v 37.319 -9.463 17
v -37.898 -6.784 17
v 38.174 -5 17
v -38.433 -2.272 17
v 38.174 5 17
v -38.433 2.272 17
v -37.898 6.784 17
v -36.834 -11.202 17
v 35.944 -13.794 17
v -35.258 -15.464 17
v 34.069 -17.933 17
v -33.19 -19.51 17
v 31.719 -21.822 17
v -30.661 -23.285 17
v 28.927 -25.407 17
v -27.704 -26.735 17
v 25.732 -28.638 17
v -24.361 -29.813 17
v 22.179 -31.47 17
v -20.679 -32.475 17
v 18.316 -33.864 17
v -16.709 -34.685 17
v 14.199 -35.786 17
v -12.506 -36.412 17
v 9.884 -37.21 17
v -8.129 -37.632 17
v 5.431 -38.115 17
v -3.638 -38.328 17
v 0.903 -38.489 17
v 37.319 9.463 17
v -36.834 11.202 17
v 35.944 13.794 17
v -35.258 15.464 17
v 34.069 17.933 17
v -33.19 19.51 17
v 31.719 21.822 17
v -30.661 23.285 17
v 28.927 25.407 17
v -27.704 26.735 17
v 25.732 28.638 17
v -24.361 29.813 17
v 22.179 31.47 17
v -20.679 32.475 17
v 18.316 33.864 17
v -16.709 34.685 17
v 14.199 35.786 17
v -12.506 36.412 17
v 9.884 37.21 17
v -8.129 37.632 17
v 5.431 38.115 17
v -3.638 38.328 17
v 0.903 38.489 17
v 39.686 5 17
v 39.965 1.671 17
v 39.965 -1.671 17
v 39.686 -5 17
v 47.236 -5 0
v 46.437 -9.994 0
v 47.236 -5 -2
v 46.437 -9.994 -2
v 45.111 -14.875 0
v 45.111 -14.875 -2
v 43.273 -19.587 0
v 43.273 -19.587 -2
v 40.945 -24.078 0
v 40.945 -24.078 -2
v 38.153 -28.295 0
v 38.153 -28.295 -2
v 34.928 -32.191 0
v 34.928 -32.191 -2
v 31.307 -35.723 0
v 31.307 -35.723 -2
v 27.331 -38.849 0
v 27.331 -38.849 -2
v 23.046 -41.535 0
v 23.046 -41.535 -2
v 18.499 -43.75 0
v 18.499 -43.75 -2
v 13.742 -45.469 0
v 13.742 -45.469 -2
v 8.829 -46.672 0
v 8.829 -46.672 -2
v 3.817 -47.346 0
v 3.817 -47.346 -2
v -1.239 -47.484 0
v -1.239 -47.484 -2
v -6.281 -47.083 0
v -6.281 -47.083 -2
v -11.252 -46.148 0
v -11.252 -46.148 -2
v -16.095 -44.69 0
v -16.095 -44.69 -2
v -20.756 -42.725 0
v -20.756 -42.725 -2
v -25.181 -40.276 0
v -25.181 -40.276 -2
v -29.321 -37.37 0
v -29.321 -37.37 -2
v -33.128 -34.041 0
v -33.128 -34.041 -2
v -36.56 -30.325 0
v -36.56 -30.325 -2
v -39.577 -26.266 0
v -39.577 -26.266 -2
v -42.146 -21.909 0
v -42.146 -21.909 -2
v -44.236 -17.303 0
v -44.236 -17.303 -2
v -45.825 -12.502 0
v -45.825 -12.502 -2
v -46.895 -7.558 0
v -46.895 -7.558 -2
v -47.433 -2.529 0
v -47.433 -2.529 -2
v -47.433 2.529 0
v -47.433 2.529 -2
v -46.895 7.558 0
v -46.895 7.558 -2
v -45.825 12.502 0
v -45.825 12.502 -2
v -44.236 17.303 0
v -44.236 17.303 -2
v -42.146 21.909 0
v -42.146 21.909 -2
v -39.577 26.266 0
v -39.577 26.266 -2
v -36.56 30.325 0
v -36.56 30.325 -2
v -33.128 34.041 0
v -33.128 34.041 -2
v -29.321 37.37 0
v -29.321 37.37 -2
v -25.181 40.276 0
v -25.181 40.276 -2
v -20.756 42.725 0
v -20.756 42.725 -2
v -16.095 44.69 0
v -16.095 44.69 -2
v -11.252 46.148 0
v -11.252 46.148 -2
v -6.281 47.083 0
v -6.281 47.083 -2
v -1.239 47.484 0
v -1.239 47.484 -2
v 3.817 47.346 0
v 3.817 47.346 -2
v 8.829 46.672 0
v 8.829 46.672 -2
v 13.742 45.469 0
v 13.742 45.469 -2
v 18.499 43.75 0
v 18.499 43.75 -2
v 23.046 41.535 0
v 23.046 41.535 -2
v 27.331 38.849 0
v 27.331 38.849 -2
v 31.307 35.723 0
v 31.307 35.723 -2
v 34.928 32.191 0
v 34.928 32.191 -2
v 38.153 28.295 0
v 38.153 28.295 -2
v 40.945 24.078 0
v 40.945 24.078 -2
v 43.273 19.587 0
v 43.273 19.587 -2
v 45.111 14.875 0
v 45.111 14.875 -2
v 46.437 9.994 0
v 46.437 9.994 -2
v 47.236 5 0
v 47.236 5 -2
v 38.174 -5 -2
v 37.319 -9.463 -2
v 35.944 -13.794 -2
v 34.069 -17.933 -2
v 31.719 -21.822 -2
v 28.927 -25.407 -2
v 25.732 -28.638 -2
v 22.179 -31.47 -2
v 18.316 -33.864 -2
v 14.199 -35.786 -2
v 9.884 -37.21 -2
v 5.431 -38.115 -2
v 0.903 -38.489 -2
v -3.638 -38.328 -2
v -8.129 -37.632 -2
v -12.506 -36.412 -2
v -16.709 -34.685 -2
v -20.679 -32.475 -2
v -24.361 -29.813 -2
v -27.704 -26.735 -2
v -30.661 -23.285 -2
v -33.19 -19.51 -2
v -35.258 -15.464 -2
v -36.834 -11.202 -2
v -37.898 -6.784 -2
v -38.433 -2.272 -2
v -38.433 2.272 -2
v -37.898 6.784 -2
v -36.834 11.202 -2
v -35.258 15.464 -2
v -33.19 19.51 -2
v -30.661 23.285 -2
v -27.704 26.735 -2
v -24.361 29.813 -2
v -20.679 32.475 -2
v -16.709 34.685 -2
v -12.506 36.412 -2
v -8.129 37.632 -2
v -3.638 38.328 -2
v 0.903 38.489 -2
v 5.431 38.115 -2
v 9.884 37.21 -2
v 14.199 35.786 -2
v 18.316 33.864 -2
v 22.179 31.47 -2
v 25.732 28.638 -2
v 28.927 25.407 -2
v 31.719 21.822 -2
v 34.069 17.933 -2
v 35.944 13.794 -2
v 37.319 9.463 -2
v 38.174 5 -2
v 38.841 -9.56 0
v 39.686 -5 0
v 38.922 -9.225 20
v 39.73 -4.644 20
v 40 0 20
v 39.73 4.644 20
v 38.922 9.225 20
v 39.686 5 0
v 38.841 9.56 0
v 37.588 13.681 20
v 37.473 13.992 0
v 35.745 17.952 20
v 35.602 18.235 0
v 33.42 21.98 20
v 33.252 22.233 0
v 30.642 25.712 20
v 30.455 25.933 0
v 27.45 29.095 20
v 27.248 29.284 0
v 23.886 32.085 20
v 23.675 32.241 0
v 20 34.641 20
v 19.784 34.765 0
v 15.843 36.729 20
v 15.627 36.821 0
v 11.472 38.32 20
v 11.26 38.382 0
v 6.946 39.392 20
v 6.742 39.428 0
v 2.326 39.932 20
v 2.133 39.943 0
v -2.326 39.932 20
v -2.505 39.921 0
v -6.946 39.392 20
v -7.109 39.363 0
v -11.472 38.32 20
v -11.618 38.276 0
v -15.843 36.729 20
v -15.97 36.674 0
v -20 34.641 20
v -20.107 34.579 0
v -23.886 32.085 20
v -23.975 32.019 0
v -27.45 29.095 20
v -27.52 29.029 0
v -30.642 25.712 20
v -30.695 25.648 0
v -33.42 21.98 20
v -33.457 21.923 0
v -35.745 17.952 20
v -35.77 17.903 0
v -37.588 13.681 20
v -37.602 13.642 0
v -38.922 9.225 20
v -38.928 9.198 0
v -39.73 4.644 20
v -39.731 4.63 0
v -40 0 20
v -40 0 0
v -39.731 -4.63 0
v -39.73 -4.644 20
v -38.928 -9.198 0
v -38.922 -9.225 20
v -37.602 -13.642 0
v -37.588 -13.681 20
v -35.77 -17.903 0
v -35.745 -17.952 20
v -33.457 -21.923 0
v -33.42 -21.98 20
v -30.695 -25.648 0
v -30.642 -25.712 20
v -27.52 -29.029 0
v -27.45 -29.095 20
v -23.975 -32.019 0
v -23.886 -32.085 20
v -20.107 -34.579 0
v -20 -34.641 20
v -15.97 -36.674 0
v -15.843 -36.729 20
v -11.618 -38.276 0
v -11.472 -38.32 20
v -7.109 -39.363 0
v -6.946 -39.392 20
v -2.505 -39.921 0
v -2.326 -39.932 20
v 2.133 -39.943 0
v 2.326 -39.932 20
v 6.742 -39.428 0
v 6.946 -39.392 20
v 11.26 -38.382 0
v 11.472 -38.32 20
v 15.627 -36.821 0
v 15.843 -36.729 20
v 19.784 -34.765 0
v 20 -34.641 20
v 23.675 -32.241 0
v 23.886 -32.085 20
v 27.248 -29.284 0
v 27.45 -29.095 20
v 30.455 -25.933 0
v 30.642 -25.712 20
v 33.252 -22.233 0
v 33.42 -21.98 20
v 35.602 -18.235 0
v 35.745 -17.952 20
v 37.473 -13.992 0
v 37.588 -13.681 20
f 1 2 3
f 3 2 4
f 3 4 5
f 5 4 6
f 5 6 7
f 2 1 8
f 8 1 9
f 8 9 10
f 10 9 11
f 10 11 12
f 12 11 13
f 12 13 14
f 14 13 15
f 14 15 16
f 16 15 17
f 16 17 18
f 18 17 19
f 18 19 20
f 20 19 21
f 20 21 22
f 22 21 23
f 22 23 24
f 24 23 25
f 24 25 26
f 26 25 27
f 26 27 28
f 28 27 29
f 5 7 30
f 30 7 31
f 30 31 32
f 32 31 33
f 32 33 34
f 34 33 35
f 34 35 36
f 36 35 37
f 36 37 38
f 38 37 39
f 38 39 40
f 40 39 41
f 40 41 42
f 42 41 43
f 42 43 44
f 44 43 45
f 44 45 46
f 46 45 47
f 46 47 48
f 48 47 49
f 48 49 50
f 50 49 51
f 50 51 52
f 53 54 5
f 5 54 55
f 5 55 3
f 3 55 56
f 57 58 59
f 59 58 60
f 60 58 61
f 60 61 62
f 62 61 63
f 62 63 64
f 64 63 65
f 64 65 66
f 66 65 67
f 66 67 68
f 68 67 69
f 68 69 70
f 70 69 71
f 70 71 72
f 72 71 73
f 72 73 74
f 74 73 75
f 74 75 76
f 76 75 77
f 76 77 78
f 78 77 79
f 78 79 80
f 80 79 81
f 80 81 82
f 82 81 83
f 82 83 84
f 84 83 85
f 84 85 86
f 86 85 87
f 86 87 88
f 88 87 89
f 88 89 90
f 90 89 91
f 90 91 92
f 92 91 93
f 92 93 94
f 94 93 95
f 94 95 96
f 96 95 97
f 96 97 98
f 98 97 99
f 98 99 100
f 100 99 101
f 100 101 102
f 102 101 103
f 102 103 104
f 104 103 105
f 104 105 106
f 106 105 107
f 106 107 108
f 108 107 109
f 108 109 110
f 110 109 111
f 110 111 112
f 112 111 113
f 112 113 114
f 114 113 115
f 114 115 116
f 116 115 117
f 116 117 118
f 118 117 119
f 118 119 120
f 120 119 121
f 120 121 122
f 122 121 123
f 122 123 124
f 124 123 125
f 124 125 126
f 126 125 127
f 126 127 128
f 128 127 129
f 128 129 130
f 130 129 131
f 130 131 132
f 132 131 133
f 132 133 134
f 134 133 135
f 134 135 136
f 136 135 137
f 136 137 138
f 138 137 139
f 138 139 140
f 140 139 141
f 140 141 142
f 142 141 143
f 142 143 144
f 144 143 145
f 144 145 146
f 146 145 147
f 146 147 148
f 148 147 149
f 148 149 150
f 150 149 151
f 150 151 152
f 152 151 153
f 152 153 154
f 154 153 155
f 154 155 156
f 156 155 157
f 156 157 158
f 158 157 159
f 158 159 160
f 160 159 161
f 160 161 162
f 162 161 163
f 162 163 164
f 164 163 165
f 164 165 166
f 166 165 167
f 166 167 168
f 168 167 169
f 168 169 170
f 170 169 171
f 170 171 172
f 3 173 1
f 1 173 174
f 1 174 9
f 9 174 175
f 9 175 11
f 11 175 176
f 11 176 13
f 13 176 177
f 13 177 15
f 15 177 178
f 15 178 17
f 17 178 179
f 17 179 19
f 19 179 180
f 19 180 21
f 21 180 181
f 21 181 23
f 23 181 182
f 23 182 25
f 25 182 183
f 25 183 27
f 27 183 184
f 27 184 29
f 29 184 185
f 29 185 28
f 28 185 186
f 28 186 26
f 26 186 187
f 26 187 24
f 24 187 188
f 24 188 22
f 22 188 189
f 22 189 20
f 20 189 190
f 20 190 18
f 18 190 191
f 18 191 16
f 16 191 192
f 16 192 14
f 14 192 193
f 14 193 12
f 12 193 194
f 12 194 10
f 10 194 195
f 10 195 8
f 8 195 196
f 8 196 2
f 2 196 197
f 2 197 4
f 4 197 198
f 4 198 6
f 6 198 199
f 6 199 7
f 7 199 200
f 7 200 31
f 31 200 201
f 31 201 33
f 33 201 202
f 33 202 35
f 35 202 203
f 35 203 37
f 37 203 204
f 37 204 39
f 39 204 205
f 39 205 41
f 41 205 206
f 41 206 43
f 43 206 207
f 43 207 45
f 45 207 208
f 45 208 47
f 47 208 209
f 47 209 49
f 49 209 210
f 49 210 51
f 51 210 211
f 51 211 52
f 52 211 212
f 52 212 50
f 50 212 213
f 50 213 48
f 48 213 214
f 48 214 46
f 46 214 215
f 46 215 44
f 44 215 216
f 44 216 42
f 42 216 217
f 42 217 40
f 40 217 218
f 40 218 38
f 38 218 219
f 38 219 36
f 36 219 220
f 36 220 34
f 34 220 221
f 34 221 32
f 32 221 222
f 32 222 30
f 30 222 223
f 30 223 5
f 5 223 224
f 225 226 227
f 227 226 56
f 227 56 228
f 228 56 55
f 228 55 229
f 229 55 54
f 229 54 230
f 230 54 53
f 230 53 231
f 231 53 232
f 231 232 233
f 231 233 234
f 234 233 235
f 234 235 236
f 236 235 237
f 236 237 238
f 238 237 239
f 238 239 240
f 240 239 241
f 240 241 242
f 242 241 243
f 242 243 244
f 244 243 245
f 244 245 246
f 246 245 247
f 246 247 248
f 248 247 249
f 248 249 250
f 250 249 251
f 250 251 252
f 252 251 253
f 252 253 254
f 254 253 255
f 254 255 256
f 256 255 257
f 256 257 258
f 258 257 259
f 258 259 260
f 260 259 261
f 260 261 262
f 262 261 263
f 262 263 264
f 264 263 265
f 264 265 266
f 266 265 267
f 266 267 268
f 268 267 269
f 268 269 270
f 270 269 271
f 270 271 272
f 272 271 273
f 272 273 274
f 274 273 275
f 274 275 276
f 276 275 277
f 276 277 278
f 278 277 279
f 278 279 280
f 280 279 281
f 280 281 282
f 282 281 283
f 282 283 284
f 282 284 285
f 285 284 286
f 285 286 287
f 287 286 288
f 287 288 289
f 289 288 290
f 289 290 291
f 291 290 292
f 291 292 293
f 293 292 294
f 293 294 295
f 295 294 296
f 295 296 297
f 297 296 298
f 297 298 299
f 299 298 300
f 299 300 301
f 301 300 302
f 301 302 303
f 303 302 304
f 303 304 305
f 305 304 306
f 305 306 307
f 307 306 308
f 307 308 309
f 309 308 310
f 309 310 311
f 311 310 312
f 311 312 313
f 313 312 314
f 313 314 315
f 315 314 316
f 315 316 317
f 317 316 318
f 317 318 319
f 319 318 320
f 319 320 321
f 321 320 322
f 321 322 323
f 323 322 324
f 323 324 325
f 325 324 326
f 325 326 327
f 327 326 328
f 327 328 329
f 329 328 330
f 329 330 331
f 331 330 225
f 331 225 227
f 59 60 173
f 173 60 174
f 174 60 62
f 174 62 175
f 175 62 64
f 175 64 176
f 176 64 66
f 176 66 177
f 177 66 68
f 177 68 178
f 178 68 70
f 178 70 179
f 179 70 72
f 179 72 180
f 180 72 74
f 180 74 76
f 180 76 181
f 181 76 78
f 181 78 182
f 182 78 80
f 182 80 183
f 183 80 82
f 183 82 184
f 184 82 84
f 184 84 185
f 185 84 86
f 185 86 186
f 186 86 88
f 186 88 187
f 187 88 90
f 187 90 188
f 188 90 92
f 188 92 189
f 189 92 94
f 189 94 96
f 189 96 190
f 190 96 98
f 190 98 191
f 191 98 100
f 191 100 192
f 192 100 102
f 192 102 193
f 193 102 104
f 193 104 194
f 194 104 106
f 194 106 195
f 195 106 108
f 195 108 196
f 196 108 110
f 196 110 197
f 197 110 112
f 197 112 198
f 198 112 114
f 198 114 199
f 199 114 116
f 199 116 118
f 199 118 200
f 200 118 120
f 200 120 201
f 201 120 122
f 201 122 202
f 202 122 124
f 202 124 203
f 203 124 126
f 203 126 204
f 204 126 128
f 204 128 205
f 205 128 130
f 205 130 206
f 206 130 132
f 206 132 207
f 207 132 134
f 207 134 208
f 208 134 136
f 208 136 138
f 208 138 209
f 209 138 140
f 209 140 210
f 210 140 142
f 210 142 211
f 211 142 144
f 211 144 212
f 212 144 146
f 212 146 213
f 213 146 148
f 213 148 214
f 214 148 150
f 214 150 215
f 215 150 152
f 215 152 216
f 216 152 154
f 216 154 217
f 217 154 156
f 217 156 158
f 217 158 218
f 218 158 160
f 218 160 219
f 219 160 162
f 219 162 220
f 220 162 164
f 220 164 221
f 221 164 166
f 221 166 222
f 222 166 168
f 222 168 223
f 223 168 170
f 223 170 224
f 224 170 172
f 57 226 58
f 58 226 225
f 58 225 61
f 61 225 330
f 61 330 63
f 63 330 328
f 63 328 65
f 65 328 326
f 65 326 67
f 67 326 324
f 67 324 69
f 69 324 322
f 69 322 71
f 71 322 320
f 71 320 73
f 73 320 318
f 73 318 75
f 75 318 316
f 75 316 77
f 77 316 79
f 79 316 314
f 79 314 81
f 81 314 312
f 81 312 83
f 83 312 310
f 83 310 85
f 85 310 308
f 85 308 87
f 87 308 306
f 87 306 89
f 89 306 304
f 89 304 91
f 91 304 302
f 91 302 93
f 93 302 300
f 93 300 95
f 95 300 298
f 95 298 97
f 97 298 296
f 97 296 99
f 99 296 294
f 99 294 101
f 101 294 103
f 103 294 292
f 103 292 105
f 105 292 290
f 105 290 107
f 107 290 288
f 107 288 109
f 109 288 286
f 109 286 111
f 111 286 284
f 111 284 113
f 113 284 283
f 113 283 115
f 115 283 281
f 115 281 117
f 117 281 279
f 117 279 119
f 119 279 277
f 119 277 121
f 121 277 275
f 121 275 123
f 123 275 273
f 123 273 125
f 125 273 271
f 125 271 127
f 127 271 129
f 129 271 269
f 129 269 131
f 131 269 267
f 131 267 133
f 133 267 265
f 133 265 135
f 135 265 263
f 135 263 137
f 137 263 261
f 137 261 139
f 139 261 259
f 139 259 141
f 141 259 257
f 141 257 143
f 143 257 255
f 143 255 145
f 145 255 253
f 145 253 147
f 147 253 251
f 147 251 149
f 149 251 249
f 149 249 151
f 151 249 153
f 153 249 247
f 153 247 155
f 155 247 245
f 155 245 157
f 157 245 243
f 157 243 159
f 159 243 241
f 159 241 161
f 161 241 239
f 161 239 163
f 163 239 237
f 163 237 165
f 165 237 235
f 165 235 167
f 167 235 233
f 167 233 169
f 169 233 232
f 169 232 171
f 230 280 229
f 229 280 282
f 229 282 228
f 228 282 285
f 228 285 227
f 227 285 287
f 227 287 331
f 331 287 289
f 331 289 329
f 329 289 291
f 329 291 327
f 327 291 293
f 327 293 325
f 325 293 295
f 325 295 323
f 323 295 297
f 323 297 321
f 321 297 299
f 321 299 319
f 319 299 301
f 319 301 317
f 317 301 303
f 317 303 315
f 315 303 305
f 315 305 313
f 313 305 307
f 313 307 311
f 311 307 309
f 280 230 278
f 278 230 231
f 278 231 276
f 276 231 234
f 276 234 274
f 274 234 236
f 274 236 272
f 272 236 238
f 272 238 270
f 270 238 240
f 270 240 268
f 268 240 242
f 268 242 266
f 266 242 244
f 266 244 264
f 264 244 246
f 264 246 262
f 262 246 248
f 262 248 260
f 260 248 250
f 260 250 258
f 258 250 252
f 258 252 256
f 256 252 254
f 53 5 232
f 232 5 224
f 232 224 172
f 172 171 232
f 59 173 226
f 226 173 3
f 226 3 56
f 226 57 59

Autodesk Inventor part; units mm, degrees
ref_plane "YZ Plane" through (0, 0, 0) normal (1, 0, 0) x (0, 1, 0)
ref_plane "XZ Plane" through (0, 0, 0) normal (0, 1, 0) x (-1, 0, 0)
ref_plane "XY Plane" through (0, 0, 0) normal (0, 0, 1) x (1, 0, 0)
sketch "스케치1" plane through (0, 0, 0) normal (0, 0, 1) x (1, 0, 0)
  circle A0 centre (0, 0) radius 38.5
  circle A1 centre (0, 0) radius 40
  dimension "d0" = 77
  dimension "d1" = 80
extrude "돌출1" add sketch "스케치1" along normal blind 20 contours A0 | A1
sketch "스케치2" plane through (0, 0, 0) normal (0, 0, -1) x (-1, 0, 0)
  circle A0 centre (0, 0) radius 38.5
  circle A1 centre (0, 0) radius 38.5
  dimension "d4" = 77
  dimension "d7" = 77
extrude "돌출2" cut sketch "스케치2" against normal blind 17
sketch "스케치3" plane through (0, 0, 0) normal (0, 0, 1) x (1, 0, 0)
  circle A0 centre (0, 0) radius 38.5
  circle A1 centre (0, 0) radius 47.5
  dimension "d8" = 95
  dimension "d9" = 77
extrude "돌출3" add sketch "스케치3" against normal blind 2
sketch "스케치4" plane through (0, 0, -2) normal (0, 0, -1) x (-1, 0, 0)
  line L0 (-25.3897, 5) -> (-51.6103, 5)
  line L1 (-51.6103, 5) -> (-51.6103, -5)
  line L2 (-51.6103, -5) -> (-25.3897, -5)
  line L3 (-25.3897, -5) -> (-25.3897, 5)
  circle A0 centre (0, 0) radius 38.5 projected
  line L4 (-25.3897, 5) -> (-51.6103, -5) construction
  line L5 (-51.6103, 5) -> (-25.3897, -5) construction
  point P0 (-38.5, 0)
  dimension "d12" = 26.2206
  dimension "d13" = 10
extrude "돌출4" cut sketch "스케치4" against normal blind 19 contours L3 L2 A0 L0 | A0 L2 L1 L0 picked at (-29.7477, -0.557)
properties part number "라이다소켓"
